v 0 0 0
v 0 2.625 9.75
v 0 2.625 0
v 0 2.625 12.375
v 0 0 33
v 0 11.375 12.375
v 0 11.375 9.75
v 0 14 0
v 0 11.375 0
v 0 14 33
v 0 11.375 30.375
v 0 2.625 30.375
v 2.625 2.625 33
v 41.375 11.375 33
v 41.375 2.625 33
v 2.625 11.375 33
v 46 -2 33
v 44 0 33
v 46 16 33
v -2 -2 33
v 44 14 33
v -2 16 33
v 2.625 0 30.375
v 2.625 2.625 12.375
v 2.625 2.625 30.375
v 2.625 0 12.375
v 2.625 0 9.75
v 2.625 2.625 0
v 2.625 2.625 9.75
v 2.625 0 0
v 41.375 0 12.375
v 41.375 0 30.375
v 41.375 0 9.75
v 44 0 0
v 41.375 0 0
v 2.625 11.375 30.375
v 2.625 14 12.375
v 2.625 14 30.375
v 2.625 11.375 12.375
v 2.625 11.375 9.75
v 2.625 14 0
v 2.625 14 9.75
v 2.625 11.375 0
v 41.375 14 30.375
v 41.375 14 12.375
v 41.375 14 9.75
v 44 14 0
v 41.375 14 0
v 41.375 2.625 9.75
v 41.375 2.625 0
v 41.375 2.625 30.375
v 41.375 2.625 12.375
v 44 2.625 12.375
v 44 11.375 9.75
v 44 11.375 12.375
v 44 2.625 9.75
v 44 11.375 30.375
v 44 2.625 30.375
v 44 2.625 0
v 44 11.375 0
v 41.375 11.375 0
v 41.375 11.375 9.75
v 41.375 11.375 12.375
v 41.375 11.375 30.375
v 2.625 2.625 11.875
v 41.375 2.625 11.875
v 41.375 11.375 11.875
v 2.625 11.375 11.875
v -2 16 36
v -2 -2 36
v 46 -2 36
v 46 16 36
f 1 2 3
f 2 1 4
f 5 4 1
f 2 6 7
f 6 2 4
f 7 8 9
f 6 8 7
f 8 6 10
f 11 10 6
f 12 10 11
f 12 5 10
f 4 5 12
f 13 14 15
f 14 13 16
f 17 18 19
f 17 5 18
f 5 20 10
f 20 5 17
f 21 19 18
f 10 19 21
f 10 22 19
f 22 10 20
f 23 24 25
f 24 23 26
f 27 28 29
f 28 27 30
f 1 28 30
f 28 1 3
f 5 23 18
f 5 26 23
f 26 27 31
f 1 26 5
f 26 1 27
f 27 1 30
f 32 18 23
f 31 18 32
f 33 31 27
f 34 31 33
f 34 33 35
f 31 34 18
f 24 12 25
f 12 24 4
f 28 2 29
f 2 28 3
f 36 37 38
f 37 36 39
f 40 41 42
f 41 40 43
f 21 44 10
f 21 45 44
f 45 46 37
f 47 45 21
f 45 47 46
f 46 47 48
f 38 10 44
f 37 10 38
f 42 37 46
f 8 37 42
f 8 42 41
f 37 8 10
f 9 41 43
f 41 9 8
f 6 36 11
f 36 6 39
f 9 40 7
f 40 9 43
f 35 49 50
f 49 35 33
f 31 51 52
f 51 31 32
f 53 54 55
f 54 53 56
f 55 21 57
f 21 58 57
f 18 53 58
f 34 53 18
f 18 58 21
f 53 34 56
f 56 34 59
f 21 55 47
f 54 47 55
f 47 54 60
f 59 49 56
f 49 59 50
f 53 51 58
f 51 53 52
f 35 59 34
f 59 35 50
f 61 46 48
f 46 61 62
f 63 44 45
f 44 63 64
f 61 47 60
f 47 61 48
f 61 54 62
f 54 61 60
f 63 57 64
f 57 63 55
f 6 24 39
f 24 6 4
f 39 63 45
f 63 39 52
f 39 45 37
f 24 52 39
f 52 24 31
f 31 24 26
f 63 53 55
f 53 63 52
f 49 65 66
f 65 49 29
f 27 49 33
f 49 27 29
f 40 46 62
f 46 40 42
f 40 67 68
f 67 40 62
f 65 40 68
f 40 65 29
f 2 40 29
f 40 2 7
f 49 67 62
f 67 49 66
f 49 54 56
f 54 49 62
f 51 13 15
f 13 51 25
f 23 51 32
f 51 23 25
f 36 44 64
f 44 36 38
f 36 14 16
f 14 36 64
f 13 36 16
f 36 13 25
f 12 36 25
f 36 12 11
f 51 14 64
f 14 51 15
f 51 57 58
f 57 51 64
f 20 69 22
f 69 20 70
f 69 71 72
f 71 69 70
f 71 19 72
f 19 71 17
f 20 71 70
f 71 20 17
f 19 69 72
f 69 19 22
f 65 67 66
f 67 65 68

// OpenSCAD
// model of a table
// Author: Thom Ives, Ph.D

// Design Parameters
tp_ht = 36;
tp_ln = 48;
tp_wd = 18;
tp_th = 3;
ovhg = 2;
leg_wd = 2.625;

pn_th = 0.5;

// Colors
tc = [0.93, 0.83, 0.68, 1.0]; // top - pine
fc = [0.4, 0.26, 0.13]; // frame - dark brown
pc = [0.93, 0.83, 0.68, 0.7]; // panels - pine - opaque

// Dependent Design Parameters
echo();
fm_ht = tp_ht - tp_th; // 30
fm_ln = tp_ln - 2 * ovhg; // 48
echo("Inner Frame Length", fm_ln - 2 * leg_wd);
fm_wd = tp_wd - 2 * ovhg; // 24;
echo("Min Inner Frame Width", fm_wd - 2 * leg_wd);
// echo ("Max Inner Frame Width", fm_wd -2);
shlf_ht = 18;
mid_hr_fm_ht = fm_ht - shlf_ht - 2 * leg_wd; // mid hrz fm ht;
echo();

// Modules
module top() {
    color(tc)
        translate([-ovhg, -ovhg, fm_ht])
            cube([tp_ln, tp_wd, tp_th]);
}

module legs(xp, yp) {
    color(fc)
        translate([xp, 0, 0])
            cube([leg_wd, leg_wd, fm_ht]);
    
    color(fc)
        translate([xp, yp, 0])
            cube([leg_wd, leg_wd, fm_ht]);
}

module horizontals(ht) {
    color(fc)
        translate([leg_wd, 0, ht])
            cube([fm_ln - 2 * leg_wd, leg_wd, leg_wd]);
    
    color(fc)
        translate([leg_wd, fm_wd - leg_wd, ht])
            cube([fm_ln - 2 * leg_wd, leg_wd, leg_wd]);
    
    color(fc)
        translate([0, leg_wd, ht])
            cube([leg_wd, fm_wd - 2 * leg_wd, leg_wd]);
    
    color(fc)
        translate([fm_ln - leg_wd, leg_wd, ht])
            cube([leg_wd, fm_wd - 2 * leg_wd, leg_wd]);
}

module shelf() {
    color(pc)
        translate([leg_wd, leg_wd, mid_hr_fm_ht + leg_wd - pn_th])
            cube([fm_ln - 2 * leg_wd, fm_wd - 2 * leg_wd, pn_th]);
}

// The executable code
top();
legs(0, fm_wd - leg_wd);
legs(fm_ln - leg_wd, fm_wd - leg_wd);
horizontals(mid_hr_fm_ht);
horizontals((fm_ht - leg_wd));
shelf();
